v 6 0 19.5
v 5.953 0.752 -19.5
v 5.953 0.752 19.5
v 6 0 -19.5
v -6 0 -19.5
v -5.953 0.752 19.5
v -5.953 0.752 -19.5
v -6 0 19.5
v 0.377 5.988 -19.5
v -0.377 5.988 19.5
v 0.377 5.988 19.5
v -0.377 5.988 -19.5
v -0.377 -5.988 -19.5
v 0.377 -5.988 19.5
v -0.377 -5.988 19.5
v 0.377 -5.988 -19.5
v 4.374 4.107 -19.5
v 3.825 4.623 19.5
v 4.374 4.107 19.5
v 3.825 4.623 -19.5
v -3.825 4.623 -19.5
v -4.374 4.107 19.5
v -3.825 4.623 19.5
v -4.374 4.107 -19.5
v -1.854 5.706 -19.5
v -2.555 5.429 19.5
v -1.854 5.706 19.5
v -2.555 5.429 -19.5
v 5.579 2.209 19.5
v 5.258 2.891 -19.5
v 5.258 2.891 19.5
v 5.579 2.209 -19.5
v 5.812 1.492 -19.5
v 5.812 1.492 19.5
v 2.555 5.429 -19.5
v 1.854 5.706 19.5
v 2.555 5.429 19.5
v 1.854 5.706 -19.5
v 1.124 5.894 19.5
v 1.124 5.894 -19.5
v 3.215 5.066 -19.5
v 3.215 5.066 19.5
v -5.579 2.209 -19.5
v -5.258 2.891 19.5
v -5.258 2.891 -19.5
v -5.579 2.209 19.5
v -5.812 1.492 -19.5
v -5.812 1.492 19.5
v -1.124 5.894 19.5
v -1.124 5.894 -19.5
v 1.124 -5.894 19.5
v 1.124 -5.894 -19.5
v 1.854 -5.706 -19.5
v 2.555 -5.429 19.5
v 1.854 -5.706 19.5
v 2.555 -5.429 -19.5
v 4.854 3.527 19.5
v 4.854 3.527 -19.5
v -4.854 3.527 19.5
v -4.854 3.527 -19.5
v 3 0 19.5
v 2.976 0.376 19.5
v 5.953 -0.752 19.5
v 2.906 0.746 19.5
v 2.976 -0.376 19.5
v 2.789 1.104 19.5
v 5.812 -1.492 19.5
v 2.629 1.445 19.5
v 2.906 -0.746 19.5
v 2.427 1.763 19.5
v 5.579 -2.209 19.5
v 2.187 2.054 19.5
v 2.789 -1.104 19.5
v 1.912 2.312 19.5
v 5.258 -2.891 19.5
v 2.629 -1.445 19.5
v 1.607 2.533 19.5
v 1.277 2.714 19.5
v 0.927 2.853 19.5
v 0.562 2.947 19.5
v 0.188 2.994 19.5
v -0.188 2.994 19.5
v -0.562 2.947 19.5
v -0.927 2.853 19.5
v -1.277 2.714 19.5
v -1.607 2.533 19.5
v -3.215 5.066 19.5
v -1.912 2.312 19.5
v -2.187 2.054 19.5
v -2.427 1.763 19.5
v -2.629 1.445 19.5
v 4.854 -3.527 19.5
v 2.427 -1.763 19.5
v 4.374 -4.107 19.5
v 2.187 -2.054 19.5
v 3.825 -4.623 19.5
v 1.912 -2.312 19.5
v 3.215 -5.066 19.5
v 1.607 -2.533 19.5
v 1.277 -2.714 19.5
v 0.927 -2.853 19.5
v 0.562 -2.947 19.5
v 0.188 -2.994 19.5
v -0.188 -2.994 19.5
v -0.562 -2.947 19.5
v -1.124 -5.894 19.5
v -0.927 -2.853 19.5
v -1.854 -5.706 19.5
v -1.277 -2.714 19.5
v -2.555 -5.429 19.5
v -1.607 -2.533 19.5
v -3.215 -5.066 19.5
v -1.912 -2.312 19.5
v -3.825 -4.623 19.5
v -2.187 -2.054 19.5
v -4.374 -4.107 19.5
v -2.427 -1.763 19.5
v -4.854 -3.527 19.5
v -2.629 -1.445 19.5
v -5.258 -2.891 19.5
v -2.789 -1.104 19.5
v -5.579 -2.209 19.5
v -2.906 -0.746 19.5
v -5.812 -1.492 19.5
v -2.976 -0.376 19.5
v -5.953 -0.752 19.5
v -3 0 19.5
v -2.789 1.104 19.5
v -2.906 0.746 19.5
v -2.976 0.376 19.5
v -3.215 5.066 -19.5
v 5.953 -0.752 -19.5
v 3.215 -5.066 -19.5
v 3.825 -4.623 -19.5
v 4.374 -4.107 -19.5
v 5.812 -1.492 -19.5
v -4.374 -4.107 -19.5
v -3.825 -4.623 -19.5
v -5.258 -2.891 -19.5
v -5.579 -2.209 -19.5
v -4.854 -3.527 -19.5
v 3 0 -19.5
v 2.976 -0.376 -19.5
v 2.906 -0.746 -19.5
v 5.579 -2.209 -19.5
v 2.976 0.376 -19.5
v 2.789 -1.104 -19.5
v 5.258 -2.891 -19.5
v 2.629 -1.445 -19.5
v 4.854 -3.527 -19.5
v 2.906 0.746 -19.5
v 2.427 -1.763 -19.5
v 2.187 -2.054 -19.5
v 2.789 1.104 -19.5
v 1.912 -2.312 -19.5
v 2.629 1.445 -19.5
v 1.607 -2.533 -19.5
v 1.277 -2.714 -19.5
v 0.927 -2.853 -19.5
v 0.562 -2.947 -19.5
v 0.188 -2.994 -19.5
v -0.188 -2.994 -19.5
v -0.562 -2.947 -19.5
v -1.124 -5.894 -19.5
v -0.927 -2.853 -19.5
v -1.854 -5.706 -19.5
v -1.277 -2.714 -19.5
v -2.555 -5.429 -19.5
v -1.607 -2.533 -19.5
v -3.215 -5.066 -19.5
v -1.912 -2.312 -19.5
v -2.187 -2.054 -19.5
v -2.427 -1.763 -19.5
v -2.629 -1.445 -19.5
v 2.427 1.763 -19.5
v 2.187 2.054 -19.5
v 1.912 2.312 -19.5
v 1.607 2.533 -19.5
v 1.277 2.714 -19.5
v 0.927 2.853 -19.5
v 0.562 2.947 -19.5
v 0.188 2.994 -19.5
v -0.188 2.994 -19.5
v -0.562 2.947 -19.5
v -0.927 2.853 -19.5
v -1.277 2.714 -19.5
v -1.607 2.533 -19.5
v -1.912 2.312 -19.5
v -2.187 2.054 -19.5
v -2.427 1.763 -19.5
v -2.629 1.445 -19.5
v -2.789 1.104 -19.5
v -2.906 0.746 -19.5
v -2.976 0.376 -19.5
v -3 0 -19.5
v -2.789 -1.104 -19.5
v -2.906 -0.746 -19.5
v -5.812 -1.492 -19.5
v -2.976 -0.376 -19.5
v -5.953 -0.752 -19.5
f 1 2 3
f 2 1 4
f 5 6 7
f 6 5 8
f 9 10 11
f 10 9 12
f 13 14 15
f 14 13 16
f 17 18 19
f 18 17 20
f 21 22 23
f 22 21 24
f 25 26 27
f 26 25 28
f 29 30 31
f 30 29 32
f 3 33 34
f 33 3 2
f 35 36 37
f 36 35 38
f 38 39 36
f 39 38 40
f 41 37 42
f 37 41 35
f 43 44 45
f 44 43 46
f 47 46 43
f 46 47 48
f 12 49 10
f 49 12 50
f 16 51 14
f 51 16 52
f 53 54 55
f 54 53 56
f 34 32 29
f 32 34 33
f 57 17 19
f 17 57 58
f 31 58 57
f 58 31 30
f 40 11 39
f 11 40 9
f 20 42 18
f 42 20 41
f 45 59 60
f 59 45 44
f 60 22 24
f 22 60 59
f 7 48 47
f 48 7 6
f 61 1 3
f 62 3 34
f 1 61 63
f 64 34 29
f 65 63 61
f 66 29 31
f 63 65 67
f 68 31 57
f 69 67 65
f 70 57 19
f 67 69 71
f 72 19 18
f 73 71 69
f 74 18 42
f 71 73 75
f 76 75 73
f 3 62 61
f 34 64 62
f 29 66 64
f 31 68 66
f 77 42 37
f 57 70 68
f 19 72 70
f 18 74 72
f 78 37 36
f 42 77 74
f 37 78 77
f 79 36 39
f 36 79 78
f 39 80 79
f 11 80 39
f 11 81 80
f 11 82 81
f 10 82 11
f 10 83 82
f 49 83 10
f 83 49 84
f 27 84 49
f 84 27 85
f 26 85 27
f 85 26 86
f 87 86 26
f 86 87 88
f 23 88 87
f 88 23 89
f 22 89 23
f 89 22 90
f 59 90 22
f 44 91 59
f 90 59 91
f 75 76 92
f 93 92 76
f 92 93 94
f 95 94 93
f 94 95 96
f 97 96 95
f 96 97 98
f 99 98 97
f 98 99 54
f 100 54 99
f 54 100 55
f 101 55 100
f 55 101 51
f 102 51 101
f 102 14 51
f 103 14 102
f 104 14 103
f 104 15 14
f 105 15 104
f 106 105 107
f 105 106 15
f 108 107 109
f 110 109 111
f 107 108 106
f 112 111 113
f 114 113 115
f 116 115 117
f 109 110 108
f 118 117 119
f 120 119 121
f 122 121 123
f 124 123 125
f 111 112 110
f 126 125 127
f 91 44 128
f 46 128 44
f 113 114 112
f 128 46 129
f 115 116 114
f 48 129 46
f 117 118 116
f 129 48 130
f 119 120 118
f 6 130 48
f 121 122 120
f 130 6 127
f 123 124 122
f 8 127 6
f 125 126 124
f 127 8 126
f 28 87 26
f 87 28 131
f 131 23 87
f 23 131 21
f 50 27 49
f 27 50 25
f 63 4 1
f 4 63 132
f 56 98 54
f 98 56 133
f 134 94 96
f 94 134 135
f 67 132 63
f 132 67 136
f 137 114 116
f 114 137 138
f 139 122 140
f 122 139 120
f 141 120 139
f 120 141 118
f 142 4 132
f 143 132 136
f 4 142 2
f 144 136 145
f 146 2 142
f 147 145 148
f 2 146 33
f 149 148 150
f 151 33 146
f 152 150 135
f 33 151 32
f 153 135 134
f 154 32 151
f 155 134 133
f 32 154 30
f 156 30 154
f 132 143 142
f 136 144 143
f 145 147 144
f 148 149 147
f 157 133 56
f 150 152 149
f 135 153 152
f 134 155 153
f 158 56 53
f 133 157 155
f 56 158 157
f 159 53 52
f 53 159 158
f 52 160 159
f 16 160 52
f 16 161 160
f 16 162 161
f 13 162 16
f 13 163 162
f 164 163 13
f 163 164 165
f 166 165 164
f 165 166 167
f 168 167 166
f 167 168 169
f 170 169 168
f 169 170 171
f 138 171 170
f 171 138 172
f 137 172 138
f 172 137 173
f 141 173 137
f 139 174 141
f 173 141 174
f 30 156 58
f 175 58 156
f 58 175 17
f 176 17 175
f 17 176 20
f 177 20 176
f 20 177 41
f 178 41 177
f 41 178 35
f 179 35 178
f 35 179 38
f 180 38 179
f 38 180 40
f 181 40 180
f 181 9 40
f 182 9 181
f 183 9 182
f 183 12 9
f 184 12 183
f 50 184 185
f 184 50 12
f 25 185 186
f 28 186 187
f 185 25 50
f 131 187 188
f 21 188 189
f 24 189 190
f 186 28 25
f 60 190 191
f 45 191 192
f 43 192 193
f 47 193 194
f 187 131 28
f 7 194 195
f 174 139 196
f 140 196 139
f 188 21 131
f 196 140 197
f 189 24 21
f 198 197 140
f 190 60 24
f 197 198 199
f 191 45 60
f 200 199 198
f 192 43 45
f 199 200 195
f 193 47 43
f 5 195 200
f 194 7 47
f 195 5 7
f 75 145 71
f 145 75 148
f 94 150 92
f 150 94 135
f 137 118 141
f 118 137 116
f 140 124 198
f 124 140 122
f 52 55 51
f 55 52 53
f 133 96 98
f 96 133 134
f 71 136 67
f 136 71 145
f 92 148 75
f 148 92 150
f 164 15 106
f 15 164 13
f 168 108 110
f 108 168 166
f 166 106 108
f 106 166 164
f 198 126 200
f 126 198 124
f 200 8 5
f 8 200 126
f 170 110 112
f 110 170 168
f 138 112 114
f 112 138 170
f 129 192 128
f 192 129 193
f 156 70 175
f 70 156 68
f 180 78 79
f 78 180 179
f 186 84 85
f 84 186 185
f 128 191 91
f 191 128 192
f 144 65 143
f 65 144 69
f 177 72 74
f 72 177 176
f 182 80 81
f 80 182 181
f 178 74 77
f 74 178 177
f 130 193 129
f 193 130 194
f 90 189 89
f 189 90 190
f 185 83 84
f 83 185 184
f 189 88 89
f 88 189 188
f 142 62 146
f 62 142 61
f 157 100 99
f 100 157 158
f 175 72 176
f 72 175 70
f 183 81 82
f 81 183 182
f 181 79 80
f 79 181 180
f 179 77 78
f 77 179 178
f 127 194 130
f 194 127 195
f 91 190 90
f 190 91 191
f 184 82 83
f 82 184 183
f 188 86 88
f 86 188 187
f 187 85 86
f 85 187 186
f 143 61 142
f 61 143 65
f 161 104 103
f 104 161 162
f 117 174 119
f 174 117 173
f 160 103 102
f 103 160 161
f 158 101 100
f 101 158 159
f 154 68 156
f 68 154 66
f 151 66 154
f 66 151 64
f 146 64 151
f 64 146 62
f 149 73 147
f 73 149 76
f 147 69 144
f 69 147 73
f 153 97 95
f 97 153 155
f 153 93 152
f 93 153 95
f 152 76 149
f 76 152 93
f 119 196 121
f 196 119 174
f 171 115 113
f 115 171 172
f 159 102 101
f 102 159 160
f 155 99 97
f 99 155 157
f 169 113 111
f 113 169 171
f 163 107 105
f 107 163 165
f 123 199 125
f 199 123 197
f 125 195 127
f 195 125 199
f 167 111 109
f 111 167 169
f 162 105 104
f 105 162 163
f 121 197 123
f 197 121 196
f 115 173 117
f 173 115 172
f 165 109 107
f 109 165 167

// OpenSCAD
$fn = 50;


difference() {
	union() {
		translate(v = [0, 0, -19.5000000000]) {
			cylinder(h = 39, r = 6.0000000000);
		}
	}
	union() {
		translate(v = [0, 0, -100.0000000000]) {
			cylinder(h = 200, r = 3);
		}
	}
}
